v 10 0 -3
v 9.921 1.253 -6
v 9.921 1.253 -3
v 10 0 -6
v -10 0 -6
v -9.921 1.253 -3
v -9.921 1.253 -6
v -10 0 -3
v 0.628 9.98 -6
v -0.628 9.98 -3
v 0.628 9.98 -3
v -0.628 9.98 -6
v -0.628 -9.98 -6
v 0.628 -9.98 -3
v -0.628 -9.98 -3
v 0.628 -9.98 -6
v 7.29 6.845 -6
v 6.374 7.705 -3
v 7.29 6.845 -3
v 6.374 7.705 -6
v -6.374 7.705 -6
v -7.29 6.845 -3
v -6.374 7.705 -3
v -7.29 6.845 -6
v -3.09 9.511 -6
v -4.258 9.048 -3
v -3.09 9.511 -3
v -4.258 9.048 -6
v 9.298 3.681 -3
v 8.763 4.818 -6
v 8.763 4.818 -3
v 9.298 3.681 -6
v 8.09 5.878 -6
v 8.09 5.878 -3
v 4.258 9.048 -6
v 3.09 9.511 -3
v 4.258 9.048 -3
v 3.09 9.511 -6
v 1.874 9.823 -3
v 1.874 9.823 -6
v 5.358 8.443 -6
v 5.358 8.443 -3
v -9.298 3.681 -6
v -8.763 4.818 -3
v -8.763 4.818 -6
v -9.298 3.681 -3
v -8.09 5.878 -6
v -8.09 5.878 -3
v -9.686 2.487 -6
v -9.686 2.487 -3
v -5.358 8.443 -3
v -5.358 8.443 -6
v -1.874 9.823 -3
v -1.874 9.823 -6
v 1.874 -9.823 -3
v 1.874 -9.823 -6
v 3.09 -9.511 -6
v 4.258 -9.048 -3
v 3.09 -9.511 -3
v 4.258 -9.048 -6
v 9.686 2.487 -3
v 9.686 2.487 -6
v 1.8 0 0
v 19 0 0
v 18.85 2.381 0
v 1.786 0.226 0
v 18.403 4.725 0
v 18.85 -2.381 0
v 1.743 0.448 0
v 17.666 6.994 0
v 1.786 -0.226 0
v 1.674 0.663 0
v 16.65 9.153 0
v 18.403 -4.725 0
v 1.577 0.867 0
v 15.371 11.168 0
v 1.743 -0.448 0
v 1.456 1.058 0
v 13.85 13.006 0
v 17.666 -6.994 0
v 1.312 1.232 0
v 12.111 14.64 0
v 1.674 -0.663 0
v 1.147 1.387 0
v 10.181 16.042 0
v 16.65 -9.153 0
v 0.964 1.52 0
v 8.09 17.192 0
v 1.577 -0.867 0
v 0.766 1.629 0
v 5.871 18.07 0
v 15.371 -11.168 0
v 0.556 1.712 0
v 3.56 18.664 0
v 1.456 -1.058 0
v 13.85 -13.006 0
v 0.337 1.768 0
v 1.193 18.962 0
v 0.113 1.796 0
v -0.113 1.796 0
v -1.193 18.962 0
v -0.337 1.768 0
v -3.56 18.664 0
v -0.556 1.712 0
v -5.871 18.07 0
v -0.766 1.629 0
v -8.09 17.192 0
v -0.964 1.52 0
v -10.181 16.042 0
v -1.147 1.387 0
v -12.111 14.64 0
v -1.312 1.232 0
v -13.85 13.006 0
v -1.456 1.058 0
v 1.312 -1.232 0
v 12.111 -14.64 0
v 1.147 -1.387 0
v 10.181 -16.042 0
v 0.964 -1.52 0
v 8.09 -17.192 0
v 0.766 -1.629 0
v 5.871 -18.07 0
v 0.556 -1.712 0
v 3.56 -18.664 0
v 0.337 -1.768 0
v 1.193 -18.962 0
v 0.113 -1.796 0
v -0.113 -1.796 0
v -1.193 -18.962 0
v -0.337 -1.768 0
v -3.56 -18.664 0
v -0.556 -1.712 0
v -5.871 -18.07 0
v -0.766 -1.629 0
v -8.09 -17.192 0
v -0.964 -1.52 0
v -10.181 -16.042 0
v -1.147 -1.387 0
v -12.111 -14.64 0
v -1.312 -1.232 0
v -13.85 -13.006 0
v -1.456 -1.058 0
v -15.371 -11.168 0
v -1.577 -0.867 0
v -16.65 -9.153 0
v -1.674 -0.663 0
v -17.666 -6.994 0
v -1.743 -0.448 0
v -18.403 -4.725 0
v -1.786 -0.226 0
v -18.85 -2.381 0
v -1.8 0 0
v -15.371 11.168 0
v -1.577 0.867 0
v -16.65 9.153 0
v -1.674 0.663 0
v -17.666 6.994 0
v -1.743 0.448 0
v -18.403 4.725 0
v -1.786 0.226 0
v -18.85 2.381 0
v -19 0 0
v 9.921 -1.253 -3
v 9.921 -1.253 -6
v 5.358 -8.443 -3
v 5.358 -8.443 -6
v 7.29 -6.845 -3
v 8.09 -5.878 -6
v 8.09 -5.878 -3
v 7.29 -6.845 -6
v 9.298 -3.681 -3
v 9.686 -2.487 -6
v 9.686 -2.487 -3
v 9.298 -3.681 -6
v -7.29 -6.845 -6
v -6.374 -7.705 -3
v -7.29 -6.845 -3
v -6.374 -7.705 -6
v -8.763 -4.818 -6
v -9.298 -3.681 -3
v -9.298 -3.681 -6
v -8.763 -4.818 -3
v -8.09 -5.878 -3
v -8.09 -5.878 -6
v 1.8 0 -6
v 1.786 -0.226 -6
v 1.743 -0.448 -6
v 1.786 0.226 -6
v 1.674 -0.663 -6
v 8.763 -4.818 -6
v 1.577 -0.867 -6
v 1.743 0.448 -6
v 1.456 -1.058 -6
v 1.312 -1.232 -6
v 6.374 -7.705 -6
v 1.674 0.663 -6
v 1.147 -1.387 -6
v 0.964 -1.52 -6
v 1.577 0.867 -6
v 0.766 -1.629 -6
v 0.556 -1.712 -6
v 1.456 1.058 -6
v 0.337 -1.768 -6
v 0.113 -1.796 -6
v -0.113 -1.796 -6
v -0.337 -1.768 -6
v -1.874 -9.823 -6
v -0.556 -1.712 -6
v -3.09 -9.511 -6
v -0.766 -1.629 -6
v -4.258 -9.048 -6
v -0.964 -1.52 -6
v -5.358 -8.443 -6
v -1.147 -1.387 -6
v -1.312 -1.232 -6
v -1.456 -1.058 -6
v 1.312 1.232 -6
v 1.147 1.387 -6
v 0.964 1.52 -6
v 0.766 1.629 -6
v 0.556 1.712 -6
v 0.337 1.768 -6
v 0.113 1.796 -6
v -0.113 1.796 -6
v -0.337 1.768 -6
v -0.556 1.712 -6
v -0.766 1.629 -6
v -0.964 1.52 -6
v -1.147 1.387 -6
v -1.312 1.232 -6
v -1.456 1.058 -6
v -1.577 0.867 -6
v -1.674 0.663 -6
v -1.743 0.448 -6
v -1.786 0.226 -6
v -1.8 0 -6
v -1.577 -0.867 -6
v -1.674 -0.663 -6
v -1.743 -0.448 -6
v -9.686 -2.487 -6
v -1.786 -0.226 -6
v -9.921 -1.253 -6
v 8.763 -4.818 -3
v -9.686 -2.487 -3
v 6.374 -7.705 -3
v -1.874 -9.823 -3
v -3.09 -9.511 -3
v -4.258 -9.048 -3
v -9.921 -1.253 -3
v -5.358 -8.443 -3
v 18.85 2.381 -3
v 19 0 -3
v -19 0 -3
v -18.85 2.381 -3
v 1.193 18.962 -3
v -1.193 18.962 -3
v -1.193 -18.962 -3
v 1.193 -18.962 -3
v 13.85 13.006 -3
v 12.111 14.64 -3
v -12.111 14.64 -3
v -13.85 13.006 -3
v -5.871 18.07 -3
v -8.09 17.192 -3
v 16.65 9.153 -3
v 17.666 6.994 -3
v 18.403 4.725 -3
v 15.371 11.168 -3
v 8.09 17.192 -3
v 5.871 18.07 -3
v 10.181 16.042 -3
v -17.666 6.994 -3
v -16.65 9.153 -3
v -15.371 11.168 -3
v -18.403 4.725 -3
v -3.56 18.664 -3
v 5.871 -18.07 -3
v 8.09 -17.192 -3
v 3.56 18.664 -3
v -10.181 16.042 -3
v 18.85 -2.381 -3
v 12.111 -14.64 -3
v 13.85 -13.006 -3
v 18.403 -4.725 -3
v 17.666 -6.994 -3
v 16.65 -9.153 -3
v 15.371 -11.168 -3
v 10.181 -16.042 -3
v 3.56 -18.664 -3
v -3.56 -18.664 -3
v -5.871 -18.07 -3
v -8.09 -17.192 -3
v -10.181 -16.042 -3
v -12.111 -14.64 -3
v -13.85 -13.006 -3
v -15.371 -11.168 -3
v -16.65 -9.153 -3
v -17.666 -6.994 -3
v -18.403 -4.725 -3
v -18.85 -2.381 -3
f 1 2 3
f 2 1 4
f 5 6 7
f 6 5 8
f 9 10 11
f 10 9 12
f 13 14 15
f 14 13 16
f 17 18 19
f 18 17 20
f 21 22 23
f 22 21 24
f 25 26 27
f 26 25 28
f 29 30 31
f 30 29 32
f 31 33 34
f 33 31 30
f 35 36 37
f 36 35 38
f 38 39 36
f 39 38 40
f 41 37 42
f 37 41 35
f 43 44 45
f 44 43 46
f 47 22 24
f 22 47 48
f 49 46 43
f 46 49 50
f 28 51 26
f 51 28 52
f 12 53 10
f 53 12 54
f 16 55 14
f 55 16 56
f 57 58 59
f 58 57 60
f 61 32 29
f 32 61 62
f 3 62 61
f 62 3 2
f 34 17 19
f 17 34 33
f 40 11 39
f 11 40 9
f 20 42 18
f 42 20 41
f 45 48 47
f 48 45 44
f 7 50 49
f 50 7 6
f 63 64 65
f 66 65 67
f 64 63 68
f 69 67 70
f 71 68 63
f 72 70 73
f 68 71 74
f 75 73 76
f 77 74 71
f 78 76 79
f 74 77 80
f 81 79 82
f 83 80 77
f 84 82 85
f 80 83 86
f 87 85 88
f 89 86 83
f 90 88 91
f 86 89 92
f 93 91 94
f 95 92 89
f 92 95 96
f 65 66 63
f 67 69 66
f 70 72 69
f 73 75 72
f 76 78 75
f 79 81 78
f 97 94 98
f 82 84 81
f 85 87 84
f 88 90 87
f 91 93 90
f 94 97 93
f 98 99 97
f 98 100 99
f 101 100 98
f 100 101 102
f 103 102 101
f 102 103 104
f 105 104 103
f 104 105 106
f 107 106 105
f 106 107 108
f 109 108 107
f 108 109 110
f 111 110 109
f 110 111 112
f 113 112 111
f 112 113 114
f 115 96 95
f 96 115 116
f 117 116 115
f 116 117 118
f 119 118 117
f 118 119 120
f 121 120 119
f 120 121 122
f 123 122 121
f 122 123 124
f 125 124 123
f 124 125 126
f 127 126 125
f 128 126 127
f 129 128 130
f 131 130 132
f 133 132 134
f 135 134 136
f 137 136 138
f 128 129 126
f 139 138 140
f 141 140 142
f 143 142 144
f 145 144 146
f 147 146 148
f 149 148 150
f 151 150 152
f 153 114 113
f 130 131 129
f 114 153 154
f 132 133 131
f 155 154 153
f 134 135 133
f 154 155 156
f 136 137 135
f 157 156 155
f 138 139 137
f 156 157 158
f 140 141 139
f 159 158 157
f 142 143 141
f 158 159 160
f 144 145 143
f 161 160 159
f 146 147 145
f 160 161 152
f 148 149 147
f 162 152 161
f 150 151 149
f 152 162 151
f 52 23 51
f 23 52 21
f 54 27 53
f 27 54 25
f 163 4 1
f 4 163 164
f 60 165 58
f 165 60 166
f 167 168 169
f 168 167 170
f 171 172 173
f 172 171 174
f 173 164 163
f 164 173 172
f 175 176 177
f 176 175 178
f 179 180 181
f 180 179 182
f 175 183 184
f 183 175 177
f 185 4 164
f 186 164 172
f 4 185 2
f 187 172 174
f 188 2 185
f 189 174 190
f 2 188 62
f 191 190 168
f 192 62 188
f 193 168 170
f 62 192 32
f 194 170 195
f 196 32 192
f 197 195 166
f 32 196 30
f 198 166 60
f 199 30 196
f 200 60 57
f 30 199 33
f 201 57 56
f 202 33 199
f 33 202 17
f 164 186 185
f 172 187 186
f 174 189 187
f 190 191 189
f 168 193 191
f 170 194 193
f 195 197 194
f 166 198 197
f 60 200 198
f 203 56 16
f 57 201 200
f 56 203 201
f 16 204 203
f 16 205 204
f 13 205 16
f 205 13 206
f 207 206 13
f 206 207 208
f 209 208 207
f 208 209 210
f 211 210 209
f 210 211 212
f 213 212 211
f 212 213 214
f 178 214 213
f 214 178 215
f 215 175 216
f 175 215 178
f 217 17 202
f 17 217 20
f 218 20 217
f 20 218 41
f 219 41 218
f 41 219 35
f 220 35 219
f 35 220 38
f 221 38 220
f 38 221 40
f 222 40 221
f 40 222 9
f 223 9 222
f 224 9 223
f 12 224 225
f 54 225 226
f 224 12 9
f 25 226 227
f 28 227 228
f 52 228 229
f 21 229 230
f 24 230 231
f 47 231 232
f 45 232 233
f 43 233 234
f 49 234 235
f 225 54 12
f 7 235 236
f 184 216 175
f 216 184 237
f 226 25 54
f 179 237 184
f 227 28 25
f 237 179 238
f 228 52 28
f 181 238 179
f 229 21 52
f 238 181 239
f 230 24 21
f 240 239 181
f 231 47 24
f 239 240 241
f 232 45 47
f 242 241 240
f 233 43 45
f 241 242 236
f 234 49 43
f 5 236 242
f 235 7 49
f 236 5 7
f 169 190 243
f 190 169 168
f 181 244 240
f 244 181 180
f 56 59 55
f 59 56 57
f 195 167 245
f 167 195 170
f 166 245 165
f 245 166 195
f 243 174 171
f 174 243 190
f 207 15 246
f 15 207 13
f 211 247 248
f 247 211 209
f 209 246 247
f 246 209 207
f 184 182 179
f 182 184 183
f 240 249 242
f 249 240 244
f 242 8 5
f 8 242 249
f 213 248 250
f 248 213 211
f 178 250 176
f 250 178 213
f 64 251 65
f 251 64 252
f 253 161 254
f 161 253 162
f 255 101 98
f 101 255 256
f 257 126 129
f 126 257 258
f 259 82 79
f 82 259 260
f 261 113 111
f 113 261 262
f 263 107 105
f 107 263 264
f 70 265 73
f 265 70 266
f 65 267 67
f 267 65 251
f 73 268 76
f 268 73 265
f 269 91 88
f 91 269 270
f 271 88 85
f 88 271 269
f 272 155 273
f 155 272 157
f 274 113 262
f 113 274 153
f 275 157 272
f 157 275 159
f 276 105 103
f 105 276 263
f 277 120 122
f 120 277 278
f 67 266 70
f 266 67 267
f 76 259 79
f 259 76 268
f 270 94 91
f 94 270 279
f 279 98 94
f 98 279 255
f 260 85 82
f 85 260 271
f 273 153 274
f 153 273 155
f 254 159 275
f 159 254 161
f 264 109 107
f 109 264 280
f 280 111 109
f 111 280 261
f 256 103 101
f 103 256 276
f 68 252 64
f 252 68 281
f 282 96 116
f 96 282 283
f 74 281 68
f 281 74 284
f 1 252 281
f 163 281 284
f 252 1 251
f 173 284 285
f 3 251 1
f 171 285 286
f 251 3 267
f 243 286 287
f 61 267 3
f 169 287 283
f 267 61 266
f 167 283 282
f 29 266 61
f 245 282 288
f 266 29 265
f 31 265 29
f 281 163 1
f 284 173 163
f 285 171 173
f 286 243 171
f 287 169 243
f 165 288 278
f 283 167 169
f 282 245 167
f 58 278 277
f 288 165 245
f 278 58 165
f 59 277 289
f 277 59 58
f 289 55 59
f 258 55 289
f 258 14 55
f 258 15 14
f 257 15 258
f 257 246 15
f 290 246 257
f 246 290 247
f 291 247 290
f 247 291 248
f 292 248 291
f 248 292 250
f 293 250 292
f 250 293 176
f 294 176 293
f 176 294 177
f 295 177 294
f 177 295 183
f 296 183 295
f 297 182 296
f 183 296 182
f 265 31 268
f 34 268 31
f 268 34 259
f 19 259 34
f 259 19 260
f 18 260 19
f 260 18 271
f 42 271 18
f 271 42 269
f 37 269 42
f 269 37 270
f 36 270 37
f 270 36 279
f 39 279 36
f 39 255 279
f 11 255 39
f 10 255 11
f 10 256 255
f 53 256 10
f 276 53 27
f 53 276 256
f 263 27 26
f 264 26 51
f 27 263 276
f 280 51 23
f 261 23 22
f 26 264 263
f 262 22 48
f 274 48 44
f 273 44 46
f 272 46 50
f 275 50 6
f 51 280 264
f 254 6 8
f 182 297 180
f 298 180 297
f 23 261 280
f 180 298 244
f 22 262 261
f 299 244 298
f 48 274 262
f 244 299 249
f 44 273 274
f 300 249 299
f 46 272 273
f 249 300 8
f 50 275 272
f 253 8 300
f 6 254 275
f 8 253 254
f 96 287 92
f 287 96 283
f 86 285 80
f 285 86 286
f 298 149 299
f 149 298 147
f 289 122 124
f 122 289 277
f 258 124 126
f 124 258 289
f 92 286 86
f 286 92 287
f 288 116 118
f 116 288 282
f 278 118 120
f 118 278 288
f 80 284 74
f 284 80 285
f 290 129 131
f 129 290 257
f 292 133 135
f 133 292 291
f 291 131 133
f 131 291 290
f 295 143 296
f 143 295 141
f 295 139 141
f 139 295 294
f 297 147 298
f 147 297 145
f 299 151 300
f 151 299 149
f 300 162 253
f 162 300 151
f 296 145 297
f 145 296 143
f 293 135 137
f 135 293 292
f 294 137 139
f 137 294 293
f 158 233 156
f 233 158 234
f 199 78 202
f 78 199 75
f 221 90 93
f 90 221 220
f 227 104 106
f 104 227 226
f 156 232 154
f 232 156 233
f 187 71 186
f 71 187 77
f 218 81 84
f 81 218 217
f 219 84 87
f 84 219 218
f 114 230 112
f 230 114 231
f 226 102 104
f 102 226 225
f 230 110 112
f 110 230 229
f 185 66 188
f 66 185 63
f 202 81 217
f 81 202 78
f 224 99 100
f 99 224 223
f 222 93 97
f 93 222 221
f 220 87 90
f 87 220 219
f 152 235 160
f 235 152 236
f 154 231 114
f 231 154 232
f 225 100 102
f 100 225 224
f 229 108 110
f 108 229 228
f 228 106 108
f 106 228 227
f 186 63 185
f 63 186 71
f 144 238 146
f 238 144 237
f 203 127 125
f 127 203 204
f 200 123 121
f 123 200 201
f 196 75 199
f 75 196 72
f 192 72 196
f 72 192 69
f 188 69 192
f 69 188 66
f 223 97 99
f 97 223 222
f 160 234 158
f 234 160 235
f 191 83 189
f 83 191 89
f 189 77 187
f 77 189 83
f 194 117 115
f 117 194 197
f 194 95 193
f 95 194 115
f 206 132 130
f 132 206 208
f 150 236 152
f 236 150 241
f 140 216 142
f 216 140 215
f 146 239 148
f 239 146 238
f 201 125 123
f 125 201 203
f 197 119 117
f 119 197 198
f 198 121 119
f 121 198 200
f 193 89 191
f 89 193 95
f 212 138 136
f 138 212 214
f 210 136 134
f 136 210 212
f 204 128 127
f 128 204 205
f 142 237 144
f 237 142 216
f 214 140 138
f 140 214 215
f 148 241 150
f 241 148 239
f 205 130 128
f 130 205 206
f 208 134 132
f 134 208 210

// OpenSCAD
$fn = 50;


difference() {
	union() {
		translate(v = [0, 0, -6.0000000000]) {
			cylinder(h = 6, r = 10.0000000000);
		}
		translate(v = [0, 0, -3.0000000000]) {
			cylinder(h = 3, r = 19.0000000000);
		}
	}
	union() {
		#translate(v = [0, 0, -6]) {
			cylinder(h = 6, r = 1.8000000000);
		}
	}
}
